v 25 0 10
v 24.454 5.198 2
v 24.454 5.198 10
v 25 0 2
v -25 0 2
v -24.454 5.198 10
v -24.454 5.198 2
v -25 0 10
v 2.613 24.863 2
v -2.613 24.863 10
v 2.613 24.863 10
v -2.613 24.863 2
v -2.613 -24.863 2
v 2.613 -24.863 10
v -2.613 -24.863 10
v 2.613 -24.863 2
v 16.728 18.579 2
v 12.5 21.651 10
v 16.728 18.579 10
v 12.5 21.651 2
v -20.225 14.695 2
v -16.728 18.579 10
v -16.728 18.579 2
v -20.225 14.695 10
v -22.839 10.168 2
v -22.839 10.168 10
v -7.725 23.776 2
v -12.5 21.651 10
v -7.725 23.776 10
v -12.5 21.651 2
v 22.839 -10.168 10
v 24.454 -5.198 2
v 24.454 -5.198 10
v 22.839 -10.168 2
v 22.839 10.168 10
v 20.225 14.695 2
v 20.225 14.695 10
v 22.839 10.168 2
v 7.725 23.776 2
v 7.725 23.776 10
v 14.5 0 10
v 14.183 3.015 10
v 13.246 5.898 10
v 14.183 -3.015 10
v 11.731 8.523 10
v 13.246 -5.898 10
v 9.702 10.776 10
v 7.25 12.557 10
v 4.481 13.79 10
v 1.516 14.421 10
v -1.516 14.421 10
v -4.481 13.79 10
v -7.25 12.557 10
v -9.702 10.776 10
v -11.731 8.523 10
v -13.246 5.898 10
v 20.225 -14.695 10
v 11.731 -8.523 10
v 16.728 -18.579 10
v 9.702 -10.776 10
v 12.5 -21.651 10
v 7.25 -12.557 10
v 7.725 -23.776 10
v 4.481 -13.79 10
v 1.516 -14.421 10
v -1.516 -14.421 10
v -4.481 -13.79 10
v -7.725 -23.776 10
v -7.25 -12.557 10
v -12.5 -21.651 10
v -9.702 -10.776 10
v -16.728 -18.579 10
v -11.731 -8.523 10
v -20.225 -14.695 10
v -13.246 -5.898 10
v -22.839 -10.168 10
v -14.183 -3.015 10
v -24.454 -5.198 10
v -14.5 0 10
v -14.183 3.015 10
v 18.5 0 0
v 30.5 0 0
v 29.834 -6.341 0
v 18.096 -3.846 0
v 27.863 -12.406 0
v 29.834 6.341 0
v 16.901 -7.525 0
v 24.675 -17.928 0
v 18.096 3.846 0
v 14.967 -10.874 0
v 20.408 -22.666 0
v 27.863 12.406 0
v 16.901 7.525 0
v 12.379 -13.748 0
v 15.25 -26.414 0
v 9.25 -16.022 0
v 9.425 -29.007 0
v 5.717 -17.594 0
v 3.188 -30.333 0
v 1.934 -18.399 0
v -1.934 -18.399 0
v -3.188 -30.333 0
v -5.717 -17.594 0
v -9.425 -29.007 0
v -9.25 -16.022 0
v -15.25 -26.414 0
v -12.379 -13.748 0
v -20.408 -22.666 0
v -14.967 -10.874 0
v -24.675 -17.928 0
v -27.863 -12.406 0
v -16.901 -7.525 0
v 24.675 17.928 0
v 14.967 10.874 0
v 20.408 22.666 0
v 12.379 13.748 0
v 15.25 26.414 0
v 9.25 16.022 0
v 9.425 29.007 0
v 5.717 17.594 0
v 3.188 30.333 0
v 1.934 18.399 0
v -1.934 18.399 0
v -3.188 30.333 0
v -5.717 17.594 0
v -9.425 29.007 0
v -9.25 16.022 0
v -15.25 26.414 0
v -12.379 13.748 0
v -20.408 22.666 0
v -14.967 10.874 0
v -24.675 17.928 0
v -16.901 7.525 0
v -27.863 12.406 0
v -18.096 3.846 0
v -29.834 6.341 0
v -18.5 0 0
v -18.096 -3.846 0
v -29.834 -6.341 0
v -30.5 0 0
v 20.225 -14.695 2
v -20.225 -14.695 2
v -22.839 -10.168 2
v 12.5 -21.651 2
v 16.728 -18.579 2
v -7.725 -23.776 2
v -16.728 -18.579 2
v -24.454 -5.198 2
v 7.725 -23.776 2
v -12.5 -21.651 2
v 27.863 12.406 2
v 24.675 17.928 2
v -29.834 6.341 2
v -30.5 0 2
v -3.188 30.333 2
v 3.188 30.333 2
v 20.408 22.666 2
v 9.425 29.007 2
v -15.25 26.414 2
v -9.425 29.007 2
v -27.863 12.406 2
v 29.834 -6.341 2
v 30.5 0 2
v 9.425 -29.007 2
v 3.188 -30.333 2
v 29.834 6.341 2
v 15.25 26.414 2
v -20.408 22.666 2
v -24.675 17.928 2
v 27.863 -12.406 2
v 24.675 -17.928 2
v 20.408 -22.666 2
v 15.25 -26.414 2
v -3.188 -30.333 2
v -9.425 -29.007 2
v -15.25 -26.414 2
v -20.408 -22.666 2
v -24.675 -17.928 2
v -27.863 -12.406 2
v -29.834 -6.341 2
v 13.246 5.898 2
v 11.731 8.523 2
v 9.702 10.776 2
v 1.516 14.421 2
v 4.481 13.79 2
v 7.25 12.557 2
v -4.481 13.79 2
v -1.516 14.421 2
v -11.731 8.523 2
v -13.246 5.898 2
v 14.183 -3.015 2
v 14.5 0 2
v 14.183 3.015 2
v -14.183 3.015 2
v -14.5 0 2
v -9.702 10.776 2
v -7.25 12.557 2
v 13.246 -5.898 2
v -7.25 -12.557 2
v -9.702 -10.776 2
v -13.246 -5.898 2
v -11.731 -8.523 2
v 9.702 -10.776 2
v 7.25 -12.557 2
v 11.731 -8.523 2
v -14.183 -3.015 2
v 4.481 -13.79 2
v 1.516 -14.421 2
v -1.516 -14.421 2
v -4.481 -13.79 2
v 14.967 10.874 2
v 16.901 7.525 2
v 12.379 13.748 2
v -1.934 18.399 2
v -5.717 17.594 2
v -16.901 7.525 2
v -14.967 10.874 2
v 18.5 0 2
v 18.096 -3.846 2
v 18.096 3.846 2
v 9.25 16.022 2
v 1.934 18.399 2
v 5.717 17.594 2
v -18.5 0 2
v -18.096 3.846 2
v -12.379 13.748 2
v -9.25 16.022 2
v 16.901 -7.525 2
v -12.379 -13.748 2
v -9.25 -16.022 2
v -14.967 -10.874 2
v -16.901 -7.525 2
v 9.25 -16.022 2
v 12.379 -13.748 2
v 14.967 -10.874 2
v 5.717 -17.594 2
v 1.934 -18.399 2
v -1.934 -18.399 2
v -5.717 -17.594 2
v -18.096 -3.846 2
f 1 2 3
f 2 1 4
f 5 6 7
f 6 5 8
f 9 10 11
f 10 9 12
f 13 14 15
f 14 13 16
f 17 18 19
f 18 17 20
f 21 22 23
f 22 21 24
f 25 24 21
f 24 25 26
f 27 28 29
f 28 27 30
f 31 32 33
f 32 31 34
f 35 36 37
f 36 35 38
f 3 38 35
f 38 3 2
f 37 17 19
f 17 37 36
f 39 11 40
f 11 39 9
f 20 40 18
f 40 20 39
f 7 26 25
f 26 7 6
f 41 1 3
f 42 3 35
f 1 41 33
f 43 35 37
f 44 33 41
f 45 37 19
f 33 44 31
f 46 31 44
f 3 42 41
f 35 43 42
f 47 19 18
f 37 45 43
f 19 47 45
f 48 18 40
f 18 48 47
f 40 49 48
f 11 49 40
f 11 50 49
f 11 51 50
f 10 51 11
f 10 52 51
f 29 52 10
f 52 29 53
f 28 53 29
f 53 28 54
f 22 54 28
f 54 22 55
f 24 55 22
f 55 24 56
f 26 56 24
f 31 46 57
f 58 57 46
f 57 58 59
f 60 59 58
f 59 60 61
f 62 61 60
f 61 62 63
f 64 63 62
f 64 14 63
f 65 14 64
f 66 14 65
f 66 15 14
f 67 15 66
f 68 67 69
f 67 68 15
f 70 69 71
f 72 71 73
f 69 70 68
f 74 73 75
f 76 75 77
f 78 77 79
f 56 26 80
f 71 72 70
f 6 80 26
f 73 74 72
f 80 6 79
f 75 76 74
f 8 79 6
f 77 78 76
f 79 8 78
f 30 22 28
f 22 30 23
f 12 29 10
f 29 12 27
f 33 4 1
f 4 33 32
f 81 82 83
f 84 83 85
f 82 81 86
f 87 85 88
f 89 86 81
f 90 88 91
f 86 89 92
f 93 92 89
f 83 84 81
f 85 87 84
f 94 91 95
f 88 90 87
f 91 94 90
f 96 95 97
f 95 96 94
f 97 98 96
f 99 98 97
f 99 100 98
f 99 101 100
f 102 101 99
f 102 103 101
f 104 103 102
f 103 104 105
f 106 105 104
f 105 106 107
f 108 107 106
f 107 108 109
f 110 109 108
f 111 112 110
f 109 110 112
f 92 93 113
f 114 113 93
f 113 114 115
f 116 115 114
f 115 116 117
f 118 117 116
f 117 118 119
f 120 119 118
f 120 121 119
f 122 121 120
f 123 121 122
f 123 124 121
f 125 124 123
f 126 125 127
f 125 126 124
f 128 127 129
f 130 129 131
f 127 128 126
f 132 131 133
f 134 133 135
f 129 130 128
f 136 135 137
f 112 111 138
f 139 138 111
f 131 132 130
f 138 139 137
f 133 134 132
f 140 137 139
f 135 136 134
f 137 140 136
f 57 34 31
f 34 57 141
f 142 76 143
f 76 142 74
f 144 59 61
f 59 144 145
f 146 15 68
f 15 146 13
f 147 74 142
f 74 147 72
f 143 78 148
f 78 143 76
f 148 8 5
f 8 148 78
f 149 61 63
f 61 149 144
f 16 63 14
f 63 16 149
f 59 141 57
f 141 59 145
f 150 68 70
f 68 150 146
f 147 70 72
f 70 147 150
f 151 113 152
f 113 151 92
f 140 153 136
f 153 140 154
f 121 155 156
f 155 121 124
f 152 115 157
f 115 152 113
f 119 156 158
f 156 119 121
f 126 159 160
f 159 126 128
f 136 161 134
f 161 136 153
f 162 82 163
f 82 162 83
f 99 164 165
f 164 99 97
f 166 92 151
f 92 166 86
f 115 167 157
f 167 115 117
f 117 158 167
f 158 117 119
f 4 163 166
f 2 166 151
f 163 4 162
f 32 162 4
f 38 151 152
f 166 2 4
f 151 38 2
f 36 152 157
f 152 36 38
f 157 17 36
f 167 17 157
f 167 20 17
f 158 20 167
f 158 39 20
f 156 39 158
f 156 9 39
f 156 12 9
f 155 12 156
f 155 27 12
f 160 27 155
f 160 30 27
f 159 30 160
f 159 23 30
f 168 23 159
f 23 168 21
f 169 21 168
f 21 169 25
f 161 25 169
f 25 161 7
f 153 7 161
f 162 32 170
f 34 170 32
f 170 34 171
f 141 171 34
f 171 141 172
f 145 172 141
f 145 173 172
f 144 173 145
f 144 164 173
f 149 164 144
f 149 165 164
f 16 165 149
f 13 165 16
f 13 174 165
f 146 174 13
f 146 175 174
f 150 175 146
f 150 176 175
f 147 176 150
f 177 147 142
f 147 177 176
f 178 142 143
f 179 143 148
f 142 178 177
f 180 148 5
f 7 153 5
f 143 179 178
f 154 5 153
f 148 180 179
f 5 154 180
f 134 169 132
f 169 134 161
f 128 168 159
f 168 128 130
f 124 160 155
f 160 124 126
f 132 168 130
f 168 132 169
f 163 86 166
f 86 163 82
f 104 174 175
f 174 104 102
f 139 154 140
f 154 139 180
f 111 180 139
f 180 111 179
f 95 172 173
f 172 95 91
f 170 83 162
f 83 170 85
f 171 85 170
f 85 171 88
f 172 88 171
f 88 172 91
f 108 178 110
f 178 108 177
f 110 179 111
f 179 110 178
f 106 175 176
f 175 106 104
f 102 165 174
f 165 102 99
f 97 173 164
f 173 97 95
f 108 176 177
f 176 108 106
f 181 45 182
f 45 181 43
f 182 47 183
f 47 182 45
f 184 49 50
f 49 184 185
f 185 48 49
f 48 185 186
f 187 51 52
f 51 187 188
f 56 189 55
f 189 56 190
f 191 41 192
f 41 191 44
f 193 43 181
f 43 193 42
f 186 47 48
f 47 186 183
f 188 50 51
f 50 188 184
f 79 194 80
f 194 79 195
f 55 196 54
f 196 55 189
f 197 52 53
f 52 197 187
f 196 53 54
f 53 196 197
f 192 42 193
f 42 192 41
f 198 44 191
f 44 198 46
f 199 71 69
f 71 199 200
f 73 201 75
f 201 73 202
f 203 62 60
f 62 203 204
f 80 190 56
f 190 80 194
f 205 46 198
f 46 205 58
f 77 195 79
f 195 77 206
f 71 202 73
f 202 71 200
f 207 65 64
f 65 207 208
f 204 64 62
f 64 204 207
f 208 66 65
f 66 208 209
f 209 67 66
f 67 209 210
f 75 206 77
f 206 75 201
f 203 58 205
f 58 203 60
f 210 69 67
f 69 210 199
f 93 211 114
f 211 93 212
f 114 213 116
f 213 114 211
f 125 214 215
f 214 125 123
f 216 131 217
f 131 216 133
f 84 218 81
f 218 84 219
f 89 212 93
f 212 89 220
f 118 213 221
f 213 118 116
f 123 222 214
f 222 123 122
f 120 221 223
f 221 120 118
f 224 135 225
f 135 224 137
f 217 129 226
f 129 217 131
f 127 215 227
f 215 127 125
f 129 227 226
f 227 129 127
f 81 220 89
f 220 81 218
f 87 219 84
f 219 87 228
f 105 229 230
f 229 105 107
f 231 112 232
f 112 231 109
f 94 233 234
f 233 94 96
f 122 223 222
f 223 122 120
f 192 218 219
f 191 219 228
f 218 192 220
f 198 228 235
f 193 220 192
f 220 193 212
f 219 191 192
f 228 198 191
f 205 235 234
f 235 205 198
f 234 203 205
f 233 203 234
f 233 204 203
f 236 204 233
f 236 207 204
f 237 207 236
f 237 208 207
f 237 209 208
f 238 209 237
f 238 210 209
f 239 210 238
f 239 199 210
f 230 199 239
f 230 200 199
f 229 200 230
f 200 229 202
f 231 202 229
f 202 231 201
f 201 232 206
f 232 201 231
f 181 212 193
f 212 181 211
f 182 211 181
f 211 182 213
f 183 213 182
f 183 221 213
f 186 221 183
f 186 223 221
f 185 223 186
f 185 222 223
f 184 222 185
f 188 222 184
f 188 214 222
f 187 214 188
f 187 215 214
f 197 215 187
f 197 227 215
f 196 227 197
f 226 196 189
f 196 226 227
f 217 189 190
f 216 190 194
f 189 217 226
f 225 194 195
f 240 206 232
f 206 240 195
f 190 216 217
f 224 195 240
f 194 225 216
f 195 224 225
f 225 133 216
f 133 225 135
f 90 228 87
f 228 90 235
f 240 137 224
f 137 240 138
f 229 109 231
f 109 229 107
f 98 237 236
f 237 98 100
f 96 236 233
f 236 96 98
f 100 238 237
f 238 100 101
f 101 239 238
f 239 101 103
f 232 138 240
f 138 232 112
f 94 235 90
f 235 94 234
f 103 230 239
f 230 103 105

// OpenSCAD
difference() {
    union() {
        cylinder(h=10,d=50);
        cylinder(h=2,d=61);
    }
    cylinder(h=10,d=29);
    cylinder(h=2,d=37);
}
